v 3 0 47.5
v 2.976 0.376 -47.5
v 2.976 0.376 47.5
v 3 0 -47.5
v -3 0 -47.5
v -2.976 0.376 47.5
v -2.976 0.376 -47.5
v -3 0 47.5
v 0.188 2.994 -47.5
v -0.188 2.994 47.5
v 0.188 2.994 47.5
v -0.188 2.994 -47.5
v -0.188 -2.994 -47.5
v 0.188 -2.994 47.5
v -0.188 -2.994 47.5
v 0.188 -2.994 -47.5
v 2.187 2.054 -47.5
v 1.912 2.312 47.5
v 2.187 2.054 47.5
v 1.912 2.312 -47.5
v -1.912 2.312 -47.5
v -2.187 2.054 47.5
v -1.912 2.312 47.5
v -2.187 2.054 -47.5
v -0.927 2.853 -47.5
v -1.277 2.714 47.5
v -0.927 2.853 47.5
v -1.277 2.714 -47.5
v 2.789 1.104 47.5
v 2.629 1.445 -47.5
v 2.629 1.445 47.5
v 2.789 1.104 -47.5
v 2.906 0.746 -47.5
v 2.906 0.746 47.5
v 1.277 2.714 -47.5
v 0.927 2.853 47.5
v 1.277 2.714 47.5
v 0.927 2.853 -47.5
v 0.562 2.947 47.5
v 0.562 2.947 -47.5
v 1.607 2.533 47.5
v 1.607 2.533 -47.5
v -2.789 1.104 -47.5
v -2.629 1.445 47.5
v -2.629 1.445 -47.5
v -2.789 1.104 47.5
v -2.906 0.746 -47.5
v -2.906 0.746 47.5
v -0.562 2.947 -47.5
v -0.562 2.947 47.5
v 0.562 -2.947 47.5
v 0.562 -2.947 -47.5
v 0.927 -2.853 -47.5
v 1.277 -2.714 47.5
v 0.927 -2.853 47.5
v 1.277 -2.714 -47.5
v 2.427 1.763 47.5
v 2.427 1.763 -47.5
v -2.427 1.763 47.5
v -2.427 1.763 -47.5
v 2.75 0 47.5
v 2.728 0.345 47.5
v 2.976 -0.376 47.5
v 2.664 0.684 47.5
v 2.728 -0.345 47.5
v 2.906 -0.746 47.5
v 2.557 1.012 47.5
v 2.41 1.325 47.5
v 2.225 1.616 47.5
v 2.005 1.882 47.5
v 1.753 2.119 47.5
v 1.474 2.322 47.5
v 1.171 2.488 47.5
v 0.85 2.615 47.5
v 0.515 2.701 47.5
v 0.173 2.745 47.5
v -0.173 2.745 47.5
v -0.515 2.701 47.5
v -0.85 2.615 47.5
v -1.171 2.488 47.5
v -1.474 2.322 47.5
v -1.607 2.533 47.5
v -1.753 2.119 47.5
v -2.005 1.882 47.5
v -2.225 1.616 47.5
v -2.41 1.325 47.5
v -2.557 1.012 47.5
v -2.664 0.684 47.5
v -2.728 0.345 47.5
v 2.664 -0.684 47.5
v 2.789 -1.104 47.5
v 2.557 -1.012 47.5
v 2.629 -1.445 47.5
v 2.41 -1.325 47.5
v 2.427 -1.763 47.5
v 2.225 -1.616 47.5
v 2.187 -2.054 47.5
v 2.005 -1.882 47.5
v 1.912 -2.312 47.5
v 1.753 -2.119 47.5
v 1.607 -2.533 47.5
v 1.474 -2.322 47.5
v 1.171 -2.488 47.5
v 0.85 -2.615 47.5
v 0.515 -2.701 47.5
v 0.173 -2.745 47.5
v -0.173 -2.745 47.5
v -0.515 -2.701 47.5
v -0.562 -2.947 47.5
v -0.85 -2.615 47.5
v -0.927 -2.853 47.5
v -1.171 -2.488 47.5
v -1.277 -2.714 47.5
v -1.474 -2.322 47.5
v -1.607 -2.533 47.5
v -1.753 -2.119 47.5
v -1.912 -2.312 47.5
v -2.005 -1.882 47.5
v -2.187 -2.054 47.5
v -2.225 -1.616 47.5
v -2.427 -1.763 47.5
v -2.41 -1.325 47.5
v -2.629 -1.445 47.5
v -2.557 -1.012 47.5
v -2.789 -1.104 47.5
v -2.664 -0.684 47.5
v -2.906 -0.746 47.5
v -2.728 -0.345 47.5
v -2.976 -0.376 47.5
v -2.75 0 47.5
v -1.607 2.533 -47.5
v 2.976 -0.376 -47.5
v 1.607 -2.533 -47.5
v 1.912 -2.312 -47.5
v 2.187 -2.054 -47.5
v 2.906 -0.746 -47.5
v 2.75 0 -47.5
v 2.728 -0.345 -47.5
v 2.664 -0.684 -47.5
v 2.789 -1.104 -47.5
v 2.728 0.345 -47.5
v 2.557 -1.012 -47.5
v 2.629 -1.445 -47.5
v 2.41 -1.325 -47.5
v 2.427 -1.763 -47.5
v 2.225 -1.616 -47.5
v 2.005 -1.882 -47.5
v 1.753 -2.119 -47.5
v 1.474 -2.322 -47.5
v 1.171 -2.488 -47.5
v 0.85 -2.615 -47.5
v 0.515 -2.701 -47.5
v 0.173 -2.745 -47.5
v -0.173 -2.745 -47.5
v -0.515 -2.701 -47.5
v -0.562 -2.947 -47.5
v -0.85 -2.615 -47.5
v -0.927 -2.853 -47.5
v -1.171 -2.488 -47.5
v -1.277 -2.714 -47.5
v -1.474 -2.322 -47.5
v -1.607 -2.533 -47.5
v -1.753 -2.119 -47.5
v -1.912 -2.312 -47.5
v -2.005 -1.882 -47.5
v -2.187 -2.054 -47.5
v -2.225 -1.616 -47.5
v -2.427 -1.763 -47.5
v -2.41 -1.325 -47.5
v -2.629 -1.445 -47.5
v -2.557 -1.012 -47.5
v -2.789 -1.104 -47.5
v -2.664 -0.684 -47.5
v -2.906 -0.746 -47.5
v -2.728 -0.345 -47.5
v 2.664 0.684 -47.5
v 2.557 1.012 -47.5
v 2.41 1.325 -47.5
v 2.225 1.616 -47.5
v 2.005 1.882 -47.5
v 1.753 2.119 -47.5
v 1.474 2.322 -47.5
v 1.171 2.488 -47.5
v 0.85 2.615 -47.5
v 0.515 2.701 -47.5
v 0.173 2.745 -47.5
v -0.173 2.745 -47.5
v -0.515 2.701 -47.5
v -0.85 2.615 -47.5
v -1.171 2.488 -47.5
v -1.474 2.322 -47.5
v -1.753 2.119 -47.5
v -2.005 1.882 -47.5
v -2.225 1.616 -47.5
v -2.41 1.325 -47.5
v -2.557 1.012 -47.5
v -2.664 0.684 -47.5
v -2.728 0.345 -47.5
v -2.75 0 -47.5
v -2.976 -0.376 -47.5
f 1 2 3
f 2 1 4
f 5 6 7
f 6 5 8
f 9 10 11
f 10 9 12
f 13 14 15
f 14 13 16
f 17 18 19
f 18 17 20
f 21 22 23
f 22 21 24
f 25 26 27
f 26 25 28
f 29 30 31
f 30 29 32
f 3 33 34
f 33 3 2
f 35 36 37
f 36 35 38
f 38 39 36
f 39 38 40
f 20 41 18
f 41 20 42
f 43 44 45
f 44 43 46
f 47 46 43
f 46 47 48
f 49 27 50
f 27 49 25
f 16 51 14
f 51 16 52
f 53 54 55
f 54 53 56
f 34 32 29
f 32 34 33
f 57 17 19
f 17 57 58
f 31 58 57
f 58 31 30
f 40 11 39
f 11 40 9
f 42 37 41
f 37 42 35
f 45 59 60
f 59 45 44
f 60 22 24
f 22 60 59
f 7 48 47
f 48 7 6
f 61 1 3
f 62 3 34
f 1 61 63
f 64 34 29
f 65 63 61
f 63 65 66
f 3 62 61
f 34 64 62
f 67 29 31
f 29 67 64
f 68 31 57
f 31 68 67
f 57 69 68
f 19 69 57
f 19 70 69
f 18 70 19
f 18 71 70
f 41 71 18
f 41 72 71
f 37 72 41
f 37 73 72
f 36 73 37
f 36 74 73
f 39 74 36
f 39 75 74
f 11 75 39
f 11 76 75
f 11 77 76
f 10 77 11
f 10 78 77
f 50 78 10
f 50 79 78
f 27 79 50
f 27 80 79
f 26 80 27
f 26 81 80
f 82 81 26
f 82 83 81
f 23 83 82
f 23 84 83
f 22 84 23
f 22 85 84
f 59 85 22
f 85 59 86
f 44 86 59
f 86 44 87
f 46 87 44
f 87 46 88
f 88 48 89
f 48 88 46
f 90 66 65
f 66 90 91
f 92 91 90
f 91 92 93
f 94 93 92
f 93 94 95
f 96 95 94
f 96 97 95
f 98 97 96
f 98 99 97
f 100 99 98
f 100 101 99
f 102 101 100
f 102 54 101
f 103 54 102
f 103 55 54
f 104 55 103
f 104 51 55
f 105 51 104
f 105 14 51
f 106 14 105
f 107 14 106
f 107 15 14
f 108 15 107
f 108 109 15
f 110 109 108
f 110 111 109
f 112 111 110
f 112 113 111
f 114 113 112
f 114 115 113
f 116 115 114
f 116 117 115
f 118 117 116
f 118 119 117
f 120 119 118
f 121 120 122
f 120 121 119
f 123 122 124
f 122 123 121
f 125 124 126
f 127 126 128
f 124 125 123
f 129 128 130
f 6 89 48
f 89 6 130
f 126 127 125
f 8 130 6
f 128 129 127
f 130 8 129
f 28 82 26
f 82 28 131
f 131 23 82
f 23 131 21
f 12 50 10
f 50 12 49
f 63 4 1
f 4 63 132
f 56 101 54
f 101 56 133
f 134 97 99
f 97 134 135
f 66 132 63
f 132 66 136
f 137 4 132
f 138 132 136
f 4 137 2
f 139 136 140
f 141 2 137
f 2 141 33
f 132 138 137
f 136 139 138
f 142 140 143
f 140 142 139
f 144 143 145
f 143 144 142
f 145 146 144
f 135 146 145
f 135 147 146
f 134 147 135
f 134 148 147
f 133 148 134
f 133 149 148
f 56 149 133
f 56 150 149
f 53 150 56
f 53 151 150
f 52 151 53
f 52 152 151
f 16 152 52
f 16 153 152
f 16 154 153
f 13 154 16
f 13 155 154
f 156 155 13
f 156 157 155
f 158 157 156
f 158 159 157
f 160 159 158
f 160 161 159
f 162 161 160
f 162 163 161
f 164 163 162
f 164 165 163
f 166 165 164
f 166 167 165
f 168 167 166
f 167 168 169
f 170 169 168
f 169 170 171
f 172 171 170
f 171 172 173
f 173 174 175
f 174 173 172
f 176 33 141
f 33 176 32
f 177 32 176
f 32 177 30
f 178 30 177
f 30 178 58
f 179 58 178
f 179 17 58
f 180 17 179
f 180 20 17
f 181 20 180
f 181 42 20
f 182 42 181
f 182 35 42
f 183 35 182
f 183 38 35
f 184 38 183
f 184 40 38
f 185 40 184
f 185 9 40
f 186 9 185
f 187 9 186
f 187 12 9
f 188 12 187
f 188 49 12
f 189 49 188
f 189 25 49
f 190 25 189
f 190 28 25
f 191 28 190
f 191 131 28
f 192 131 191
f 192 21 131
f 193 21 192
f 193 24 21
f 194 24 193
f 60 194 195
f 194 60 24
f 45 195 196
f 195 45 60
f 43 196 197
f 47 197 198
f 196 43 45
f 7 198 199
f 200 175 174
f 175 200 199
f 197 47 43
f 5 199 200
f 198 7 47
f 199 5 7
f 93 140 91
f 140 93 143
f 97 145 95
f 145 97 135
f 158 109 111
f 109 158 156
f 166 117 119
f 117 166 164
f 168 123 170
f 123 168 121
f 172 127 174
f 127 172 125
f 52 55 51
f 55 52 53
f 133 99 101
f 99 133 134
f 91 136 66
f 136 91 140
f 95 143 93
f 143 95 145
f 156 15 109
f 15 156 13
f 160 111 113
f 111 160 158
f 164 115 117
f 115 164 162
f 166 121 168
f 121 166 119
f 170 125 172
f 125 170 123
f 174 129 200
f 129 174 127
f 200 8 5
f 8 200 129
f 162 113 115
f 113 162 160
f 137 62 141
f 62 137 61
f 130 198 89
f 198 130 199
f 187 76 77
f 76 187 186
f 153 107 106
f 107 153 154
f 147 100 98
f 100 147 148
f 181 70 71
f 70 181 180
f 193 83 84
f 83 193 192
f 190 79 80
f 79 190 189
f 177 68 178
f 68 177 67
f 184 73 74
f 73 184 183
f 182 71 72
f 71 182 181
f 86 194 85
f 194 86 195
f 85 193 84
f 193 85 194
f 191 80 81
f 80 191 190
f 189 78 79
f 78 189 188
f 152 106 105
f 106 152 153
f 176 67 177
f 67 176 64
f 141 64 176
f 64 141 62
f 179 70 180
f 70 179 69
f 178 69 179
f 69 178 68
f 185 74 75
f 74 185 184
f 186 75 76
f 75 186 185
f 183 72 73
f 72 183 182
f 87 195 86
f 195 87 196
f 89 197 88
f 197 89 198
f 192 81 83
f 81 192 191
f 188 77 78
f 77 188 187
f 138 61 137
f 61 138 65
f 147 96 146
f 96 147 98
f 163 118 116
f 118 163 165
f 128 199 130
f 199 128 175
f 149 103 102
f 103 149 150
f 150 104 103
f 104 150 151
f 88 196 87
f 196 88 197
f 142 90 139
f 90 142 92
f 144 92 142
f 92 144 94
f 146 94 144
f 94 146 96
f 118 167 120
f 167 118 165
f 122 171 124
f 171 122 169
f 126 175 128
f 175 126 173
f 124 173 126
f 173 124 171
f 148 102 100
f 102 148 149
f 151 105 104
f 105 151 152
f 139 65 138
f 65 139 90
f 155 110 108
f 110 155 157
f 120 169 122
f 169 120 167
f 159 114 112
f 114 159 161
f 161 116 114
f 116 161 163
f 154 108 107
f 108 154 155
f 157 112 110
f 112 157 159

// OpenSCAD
$fn = 50;


difference() {
	union() {
		translate(v = [0, 0, -47.5000000000]) {
			cylinder(h = 95, r = 3.0000000000);
		}
	}
	union() {
		translate(v = [0, 0, -100.0000000000]) {
			cylinder(h = 200, r = 2.7500000000);
		}
	}
}
